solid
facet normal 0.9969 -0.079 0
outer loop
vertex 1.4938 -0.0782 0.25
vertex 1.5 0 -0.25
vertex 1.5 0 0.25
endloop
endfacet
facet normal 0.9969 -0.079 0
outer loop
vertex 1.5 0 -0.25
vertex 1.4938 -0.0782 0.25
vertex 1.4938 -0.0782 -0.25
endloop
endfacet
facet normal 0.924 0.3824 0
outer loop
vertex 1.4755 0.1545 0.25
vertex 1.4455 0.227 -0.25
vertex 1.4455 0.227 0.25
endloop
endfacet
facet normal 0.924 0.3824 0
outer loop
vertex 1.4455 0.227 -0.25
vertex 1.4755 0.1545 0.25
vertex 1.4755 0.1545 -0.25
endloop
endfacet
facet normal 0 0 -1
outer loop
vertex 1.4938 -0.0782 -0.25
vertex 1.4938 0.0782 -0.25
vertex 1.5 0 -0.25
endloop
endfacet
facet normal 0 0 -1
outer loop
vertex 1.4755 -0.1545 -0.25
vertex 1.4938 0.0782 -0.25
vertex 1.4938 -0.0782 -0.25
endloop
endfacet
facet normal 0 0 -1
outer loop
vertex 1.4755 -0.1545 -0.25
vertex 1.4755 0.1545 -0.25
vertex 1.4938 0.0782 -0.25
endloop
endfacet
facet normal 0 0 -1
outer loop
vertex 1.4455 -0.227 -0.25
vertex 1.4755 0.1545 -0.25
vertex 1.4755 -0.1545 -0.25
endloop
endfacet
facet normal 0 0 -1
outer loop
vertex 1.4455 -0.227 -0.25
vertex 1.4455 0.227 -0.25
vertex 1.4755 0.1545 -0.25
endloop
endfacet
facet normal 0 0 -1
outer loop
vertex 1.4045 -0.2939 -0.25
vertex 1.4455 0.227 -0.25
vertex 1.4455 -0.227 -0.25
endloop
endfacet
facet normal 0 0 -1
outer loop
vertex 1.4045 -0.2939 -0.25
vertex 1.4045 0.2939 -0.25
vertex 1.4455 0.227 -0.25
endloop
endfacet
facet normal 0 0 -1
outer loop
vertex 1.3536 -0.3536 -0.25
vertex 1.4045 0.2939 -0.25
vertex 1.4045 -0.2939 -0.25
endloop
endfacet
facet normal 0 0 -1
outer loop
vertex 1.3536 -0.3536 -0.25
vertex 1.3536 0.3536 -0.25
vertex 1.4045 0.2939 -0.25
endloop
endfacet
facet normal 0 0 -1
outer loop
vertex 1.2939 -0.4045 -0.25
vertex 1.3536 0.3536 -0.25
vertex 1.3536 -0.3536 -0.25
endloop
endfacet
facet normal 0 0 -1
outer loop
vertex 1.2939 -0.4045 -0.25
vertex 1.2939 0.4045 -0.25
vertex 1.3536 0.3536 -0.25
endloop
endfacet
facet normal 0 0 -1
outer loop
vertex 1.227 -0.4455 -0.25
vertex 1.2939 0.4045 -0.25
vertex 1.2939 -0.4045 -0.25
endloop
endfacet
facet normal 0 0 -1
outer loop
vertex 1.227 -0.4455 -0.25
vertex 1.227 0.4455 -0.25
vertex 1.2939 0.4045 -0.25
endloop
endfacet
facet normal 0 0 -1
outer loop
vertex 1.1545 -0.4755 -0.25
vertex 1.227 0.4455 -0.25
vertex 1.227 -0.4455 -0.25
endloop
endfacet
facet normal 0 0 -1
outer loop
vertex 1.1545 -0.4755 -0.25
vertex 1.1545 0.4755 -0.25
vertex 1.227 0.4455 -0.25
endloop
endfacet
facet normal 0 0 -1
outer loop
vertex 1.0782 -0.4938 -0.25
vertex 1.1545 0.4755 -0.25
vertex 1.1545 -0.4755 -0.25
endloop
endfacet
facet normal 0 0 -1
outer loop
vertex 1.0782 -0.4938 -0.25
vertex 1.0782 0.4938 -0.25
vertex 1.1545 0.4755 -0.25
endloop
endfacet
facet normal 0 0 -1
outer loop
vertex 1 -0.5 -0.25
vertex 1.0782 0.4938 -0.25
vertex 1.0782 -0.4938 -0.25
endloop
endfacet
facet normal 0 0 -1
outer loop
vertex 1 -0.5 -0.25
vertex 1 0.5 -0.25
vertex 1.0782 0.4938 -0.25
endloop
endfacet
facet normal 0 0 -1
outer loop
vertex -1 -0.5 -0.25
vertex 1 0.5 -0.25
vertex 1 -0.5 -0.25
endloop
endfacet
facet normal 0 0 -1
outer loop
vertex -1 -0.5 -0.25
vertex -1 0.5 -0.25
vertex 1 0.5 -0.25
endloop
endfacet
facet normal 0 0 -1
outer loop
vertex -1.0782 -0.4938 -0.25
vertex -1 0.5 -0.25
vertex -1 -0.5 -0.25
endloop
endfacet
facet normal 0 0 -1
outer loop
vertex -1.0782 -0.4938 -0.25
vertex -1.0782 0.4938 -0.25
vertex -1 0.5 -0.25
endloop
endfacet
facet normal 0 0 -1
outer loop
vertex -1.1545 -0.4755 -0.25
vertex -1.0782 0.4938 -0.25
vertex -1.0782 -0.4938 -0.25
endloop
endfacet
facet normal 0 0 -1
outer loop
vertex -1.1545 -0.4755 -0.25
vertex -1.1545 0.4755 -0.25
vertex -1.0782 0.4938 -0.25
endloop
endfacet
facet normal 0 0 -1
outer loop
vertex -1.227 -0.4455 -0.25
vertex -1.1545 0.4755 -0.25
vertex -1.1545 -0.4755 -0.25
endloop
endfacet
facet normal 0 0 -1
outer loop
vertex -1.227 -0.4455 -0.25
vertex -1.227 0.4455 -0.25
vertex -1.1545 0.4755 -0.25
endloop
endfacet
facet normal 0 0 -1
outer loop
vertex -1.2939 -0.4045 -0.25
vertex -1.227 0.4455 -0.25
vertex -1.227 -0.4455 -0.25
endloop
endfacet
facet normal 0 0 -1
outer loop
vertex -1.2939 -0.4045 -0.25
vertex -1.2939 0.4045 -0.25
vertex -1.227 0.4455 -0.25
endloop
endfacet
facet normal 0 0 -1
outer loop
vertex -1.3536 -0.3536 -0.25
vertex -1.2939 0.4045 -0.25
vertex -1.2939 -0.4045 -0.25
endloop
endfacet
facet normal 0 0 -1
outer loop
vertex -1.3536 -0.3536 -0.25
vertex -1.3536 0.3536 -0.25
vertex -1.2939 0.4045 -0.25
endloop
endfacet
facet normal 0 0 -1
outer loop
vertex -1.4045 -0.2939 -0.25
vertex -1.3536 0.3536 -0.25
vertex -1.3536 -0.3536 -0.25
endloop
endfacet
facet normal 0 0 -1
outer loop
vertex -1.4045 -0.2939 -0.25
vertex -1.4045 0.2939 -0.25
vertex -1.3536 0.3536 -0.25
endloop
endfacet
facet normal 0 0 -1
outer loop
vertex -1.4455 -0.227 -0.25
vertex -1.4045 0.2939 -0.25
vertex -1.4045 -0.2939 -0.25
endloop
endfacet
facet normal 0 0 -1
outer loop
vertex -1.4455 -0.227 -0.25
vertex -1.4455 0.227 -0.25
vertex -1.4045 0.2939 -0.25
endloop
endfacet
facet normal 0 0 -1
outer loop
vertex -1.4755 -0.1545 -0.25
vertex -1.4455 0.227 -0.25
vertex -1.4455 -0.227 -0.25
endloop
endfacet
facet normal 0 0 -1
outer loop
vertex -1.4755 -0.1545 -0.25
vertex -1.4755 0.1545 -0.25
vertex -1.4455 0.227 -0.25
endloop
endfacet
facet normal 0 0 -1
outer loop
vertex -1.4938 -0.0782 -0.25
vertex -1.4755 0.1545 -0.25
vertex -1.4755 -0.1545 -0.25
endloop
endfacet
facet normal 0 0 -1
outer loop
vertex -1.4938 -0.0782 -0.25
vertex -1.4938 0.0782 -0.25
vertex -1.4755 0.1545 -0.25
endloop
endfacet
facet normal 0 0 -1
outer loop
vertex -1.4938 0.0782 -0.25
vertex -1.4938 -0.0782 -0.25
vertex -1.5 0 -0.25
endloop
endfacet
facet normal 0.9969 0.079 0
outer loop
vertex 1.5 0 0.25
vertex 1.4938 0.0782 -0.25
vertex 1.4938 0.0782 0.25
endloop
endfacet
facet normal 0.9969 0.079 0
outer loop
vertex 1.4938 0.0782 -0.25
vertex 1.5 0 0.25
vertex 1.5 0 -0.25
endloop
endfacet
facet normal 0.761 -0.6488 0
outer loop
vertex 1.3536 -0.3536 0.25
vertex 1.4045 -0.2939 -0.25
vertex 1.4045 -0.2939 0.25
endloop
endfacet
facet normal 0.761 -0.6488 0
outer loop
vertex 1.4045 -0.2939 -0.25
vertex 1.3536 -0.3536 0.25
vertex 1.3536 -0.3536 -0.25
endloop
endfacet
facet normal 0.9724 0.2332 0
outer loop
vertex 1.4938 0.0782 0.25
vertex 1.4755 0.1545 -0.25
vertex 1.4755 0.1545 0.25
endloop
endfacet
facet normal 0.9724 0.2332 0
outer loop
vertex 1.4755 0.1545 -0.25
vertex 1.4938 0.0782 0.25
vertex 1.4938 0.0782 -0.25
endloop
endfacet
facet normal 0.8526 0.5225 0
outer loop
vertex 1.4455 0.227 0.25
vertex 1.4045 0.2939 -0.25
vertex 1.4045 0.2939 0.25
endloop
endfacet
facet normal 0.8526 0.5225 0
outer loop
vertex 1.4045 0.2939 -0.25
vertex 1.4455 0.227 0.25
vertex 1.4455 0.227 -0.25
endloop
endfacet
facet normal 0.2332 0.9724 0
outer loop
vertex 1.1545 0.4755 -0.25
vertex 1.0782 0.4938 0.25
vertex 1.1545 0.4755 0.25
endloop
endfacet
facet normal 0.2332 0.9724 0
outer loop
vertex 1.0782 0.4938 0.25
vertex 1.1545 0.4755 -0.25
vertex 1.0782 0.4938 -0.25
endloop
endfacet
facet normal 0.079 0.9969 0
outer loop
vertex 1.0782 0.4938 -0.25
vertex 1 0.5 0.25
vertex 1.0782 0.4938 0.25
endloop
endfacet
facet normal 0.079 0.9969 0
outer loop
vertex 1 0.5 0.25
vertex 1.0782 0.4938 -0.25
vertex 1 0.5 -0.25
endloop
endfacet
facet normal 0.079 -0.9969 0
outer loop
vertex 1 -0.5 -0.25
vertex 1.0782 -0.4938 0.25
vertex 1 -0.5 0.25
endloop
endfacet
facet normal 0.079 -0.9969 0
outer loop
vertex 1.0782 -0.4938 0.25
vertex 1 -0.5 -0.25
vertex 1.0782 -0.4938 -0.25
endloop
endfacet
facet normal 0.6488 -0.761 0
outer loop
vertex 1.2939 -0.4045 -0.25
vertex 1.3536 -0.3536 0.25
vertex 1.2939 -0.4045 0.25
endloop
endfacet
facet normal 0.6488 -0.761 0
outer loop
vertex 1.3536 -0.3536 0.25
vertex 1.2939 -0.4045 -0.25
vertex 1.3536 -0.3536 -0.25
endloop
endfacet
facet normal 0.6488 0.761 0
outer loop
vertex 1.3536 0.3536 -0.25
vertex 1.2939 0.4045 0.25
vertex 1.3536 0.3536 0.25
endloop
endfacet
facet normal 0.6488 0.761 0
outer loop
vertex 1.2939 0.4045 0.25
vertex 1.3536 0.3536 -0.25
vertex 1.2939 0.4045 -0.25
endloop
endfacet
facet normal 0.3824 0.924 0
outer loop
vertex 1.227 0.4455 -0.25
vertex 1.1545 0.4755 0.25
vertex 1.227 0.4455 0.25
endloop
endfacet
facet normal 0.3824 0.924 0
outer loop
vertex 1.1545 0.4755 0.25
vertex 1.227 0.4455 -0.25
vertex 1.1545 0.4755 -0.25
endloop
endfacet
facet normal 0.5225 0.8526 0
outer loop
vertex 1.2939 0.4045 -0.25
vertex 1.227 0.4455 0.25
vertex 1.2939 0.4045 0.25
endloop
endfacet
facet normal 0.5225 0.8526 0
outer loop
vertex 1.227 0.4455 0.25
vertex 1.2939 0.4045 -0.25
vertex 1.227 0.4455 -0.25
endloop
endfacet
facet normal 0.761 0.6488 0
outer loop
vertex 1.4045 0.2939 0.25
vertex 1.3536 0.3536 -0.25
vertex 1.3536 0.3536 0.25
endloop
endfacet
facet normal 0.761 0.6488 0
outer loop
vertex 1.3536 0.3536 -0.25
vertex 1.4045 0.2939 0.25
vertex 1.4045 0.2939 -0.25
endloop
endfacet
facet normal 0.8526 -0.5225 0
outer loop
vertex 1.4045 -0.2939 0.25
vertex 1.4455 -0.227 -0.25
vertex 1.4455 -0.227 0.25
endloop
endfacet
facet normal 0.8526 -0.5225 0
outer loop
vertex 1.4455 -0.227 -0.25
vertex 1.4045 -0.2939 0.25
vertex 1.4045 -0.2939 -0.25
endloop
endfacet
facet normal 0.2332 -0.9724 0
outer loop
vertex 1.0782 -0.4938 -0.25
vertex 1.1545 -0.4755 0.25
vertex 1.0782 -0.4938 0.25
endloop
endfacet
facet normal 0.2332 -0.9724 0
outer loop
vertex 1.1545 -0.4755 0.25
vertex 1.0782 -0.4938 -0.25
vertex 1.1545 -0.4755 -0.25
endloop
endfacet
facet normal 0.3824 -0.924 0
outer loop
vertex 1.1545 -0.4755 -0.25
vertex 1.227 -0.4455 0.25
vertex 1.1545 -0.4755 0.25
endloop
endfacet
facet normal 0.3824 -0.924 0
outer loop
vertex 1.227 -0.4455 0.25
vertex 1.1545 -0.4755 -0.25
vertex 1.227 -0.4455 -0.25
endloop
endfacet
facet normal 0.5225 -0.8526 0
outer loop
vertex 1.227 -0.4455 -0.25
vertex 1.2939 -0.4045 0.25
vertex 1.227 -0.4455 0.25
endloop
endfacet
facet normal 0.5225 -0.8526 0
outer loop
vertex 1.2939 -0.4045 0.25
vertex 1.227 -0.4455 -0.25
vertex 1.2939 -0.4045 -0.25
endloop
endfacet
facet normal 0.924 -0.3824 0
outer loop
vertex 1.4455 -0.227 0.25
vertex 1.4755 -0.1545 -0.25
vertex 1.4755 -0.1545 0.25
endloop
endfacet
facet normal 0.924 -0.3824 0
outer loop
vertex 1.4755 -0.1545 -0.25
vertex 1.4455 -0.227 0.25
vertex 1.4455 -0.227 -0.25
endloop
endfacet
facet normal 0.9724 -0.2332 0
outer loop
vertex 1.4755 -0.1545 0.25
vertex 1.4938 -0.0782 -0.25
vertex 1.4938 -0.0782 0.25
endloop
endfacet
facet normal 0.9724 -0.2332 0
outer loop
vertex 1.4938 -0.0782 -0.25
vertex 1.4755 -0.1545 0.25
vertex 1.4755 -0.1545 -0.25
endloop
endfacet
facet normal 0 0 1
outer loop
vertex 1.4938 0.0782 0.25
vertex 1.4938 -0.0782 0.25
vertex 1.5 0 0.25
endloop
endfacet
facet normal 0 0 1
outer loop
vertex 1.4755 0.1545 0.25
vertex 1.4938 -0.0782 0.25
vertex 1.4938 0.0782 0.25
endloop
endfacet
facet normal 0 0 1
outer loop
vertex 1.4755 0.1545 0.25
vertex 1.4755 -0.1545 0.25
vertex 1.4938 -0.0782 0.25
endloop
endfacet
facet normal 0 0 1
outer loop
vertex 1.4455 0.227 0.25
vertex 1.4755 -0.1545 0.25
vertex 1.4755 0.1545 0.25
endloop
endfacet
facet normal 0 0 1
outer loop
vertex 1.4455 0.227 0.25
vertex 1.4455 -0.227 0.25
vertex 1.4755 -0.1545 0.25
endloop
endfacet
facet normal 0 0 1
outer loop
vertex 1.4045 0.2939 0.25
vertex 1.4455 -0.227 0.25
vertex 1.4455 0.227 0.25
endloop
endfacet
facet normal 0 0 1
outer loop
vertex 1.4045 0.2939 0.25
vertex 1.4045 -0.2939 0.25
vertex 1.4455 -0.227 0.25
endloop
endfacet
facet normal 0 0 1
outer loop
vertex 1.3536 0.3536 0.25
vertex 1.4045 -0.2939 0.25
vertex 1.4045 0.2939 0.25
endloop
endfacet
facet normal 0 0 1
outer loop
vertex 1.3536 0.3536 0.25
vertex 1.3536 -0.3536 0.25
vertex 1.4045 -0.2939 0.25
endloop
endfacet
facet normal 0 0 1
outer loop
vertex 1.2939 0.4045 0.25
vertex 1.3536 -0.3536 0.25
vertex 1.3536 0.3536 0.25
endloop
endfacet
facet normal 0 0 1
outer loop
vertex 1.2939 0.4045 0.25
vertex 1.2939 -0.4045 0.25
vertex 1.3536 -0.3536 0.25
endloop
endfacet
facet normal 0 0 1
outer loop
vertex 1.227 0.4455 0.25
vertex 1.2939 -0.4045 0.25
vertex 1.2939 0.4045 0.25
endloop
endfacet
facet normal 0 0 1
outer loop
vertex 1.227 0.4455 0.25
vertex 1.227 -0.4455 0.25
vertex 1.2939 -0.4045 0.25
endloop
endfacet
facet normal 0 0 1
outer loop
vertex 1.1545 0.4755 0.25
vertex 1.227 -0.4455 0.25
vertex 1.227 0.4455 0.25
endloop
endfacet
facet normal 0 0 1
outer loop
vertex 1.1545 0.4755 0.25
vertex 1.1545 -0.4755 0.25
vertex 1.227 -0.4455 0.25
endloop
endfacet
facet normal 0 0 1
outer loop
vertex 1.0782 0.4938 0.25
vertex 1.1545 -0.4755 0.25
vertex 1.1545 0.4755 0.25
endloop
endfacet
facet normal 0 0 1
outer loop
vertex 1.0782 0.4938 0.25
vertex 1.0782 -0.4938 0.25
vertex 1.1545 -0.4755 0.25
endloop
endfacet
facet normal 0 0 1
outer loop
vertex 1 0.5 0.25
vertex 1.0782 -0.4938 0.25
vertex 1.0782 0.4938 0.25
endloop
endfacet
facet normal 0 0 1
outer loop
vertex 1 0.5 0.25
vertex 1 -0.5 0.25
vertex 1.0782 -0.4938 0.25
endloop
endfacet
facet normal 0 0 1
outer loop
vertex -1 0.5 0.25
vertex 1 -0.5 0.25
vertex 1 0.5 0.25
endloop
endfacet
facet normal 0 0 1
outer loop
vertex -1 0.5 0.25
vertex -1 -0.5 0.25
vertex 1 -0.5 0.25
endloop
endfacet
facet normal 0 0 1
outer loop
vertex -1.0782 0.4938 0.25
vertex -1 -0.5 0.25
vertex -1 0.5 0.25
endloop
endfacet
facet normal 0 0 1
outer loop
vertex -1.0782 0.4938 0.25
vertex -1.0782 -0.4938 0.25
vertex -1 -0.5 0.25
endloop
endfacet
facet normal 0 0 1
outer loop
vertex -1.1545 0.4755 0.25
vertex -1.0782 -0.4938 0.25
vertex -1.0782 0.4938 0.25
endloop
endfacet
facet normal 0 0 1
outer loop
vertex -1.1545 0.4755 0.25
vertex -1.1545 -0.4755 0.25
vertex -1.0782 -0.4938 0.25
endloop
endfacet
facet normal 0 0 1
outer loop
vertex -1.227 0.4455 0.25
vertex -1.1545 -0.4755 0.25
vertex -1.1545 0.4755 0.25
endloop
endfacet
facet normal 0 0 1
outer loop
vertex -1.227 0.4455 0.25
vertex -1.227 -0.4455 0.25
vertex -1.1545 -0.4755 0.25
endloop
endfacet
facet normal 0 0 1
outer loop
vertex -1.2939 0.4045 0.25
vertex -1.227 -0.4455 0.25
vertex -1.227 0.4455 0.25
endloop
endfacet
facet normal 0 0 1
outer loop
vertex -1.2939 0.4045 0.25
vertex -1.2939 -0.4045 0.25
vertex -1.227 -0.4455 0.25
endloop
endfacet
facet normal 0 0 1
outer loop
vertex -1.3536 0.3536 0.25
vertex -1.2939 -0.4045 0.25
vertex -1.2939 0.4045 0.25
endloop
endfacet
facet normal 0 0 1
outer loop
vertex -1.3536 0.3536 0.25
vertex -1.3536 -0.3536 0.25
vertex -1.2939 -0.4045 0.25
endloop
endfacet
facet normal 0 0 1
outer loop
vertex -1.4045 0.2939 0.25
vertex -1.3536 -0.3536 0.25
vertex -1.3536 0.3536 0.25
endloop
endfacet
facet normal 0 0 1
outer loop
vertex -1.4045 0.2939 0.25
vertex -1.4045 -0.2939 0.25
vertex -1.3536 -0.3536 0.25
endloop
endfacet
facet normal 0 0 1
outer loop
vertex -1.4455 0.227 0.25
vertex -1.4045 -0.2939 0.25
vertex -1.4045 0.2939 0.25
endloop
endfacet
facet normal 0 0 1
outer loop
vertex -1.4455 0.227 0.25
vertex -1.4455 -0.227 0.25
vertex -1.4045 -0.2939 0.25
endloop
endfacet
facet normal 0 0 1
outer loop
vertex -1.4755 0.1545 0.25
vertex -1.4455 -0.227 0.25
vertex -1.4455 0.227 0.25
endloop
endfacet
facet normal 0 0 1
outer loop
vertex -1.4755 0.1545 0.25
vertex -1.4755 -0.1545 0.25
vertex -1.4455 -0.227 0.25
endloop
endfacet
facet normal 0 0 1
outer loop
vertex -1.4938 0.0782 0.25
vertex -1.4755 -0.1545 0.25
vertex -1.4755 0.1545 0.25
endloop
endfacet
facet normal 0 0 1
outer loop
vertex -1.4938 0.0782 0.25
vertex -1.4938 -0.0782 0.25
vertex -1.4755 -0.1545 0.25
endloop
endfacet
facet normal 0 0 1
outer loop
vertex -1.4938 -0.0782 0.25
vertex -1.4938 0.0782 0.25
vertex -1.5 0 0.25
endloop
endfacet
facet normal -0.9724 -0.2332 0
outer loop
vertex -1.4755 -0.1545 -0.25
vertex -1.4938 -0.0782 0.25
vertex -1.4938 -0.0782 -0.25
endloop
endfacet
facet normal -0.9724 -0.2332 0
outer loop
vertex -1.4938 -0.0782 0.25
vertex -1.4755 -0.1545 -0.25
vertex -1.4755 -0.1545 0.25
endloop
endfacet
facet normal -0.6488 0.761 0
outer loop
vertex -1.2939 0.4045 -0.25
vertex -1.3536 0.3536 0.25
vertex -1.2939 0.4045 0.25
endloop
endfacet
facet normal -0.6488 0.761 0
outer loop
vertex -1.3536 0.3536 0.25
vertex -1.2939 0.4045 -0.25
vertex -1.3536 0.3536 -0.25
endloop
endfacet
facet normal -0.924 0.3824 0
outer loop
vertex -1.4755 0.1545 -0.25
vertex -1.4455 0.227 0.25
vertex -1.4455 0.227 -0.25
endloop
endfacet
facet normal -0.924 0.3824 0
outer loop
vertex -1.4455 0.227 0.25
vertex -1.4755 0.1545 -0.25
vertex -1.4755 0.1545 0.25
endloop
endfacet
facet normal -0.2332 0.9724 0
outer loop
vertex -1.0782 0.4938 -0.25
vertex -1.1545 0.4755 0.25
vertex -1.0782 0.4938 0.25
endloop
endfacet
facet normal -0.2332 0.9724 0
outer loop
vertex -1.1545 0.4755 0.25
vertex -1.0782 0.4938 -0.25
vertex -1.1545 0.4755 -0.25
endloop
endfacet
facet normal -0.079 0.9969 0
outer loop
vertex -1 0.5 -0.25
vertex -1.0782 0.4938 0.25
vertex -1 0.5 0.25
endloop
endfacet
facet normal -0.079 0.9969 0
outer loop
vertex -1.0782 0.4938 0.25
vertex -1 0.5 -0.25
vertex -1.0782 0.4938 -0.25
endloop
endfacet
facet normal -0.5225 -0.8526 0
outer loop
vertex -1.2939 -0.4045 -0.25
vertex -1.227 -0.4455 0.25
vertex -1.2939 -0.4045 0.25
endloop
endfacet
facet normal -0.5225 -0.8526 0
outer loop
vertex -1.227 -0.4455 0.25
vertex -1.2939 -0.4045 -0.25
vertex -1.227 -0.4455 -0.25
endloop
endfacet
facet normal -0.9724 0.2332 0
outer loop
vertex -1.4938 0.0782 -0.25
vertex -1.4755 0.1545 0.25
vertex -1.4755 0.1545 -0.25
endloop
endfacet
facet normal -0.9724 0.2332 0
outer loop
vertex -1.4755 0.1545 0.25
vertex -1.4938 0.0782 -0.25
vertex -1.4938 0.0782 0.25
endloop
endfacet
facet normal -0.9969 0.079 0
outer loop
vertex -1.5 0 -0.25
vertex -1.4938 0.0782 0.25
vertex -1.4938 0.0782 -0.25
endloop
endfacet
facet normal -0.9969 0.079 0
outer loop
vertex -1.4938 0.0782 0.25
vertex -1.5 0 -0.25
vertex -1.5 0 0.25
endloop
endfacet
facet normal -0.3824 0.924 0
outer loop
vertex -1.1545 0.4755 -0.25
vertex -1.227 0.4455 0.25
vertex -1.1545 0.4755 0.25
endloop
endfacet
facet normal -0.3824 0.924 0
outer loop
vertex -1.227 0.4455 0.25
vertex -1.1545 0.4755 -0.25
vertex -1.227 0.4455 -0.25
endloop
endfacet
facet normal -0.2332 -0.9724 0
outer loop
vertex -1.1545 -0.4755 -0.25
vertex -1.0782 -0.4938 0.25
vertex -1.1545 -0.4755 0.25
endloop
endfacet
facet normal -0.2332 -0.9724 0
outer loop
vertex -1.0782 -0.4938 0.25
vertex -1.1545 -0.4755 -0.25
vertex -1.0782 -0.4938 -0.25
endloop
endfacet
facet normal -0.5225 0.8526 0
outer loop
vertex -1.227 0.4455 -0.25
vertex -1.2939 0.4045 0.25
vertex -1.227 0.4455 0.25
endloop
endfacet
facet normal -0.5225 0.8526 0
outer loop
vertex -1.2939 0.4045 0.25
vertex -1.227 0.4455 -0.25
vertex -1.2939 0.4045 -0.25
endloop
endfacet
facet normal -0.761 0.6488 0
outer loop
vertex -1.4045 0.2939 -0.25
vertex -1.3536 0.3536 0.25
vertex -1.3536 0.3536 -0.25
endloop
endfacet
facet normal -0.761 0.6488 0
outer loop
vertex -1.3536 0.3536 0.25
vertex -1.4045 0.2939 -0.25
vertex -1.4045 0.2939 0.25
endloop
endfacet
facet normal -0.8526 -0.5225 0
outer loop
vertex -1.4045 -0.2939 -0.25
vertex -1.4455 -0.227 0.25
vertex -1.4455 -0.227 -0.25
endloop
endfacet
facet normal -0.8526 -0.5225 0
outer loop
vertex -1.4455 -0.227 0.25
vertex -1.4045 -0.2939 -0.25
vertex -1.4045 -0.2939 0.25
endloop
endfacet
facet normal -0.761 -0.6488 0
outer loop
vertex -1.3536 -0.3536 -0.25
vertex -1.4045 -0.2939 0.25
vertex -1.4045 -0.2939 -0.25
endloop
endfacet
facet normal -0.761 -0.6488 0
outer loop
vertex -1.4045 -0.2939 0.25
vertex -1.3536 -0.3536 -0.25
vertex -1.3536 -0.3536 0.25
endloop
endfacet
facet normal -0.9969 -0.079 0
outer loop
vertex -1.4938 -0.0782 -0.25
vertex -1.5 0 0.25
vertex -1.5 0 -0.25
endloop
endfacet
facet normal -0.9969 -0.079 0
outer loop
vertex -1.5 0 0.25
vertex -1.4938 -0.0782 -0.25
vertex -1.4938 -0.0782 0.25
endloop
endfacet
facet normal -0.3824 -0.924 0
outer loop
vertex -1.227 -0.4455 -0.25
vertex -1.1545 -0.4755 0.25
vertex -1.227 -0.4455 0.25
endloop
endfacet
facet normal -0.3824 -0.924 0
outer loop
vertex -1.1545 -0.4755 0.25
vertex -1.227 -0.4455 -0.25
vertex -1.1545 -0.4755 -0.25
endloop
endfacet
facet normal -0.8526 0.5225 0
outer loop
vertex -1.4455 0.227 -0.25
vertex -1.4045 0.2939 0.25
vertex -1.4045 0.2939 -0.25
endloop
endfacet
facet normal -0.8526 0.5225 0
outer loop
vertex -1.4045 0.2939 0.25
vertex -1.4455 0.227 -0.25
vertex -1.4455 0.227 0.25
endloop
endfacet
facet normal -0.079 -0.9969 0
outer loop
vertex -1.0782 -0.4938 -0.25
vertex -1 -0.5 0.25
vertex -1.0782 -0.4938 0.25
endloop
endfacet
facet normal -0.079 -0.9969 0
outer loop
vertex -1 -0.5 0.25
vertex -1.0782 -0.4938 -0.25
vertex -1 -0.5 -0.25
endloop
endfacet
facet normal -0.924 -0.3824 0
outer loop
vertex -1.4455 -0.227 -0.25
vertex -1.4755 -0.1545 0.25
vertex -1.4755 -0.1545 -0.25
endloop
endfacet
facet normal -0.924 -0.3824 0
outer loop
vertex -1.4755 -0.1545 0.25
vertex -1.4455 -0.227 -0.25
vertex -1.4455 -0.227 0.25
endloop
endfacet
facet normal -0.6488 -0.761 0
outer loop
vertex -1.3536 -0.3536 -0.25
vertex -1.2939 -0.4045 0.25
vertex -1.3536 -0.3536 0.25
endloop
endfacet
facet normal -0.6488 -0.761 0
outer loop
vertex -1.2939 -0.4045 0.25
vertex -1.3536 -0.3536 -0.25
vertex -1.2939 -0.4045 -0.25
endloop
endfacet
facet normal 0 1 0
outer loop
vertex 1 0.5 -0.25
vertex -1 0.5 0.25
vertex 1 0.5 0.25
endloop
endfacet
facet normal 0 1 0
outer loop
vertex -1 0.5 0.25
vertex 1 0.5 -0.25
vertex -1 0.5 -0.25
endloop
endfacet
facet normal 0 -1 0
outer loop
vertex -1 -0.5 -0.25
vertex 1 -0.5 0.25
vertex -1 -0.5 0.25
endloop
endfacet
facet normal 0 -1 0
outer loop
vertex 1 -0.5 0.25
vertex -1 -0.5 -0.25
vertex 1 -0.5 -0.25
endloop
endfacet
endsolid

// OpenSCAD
union(){

translate([1,0,0])
cylinder(0.5,0.5,0.5, $fn=40, center=true);

translate([-1,0,0])
cylinder(0.5,0.5,0.5, $fn=40, center=true);

cube([2,1,0.5],center = true);

}
